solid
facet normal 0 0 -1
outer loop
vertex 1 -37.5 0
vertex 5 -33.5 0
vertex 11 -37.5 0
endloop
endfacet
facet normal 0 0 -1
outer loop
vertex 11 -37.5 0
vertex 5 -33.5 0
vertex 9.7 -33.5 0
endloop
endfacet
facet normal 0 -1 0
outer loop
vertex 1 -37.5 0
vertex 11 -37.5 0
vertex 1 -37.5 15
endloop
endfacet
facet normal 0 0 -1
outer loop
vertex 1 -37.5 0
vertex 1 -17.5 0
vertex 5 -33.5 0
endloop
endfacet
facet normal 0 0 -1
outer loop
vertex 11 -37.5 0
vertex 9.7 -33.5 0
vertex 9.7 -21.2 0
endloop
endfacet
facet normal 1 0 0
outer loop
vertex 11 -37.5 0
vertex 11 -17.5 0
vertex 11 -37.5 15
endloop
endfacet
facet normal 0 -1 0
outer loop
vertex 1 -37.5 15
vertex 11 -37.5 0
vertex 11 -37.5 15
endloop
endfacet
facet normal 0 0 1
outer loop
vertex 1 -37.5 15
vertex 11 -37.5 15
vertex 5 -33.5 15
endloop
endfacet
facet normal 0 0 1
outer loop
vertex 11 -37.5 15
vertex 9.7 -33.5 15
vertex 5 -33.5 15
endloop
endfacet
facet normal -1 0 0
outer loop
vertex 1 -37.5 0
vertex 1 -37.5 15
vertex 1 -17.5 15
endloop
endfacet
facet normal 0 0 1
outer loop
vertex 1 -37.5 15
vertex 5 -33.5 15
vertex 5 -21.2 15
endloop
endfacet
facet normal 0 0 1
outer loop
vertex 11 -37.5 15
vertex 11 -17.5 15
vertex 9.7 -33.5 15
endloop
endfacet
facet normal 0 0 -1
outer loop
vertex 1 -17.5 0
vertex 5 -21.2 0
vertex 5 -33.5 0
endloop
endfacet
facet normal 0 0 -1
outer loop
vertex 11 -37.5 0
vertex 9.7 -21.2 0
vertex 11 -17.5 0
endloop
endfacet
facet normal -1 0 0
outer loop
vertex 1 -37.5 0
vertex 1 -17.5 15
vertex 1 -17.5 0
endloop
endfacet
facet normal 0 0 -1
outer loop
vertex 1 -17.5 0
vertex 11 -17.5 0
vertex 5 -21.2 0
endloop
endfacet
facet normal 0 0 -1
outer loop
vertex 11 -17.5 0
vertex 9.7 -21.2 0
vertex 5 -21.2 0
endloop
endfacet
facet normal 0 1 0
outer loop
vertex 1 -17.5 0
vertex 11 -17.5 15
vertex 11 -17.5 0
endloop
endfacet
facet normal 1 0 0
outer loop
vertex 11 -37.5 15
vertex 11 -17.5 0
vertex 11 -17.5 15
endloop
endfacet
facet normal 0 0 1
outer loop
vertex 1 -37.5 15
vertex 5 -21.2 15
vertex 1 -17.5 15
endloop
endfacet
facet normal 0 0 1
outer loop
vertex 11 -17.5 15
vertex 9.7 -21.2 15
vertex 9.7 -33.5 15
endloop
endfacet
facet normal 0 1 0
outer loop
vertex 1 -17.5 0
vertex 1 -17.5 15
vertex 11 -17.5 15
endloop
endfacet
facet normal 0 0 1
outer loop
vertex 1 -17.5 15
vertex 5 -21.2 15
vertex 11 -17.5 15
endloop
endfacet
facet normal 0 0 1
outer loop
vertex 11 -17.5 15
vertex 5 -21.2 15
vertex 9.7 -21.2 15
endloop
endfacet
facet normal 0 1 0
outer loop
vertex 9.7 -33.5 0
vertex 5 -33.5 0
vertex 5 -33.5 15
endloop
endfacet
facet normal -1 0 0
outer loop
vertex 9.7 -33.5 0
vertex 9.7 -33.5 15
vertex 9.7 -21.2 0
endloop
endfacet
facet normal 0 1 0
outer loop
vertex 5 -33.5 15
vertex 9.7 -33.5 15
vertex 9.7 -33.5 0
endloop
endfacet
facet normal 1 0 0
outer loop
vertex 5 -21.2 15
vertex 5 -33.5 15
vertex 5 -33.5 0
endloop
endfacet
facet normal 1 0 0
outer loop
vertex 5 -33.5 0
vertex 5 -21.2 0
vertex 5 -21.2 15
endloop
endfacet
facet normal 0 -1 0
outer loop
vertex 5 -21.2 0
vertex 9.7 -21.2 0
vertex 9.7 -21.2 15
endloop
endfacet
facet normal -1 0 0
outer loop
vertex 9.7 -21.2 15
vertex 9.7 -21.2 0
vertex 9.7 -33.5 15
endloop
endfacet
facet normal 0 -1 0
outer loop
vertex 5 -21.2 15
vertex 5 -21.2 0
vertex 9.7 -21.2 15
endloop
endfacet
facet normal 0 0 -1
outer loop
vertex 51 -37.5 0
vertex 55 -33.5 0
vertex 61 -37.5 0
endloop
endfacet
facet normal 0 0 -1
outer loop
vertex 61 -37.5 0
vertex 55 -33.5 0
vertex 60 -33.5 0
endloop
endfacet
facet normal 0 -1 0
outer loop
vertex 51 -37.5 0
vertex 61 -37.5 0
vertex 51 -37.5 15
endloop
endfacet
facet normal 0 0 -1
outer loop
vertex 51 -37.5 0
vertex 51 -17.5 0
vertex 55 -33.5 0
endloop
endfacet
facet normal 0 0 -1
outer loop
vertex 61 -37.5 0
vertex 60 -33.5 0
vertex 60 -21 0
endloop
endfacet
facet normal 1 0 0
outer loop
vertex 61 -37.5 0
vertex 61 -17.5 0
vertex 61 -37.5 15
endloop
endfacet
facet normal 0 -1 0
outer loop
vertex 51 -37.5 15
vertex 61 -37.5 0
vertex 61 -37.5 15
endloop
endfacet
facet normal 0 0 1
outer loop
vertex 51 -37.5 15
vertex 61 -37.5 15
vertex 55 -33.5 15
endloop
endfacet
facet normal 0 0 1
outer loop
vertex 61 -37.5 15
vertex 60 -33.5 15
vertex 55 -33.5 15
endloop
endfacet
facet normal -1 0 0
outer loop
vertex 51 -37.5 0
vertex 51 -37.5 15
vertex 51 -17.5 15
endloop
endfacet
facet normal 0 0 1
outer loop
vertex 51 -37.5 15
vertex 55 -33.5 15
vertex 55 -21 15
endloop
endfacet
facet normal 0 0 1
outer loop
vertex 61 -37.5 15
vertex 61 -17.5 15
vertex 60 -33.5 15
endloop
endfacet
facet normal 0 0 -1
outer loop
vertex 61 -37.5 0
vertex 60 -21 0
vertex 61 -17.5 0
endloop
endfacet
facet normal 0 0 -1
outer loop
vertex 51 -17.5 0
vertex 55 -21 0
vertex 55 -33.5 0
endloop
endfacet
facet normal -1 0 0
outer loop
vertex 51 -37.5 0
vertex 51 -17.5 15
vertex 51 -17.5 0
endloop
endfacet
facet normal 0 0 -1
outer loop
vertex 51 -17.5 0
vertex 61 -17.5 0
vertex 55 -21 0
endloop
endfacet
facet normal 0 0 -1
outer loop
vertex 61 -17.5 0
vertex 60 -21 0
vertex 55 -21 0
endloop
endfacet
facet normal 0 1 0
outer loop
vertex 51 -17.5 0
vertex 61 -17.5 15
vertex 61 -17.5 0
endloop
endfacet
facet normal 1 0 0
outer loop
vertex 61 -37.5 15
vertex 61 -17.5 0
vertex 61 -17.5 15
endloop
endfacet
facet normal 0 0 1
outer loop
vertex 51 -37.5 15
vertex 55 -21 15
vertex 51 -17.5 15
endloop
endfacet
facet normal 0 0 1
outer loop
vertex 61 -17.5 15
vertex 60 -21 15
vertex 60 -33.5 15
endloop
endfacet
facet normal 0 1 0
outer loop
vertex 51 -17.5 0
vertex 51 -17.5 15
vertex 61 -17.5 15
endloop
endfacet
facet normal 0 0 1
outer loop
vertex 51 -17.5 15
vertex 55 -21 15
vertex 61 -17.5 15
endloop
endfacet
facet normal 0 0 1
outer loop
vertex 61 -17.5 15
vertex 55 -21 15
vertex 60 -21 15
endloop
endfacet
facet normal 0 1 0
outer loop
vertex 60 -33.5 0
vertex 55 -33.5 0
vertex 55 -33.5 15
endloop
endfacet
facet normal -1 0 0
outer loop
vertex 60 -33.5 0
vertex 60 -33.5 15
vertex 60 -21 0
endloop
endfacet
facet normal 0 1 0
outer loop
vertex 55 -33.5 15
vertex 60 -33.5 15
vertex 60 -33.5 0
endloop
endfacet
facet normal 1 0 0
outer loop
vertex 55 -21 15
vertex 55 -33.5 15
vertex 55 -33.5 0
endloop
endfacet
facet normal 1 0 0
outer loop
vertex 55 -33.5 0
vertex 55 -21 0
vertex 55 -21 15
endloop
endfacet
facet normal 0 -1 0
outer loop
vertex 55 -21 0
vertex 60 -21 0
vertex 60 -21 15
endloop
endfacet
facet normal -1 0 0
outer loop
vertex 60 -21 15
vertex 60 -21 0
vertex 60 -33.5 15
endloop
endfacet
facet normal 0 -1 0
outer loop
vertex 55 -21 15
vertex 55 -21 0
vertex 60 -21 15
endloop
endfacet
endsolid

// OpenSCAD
translate([-50,0,0])
difference() {
    translate([51,-37.5,0])
    linear_extrude(15)
        square([10,20]);

    translate([55,-33.5,-2])
    linear_extrude(20)
        square([4.7,12.3]);
    
}

difference() {
    translate([51,-37.5,0])
    linear_extrude(15)
        square([10,20]);

    translate([55,-33.5,-2])
    linear_extrude(20)
        square([5,12.5]);
    
}
